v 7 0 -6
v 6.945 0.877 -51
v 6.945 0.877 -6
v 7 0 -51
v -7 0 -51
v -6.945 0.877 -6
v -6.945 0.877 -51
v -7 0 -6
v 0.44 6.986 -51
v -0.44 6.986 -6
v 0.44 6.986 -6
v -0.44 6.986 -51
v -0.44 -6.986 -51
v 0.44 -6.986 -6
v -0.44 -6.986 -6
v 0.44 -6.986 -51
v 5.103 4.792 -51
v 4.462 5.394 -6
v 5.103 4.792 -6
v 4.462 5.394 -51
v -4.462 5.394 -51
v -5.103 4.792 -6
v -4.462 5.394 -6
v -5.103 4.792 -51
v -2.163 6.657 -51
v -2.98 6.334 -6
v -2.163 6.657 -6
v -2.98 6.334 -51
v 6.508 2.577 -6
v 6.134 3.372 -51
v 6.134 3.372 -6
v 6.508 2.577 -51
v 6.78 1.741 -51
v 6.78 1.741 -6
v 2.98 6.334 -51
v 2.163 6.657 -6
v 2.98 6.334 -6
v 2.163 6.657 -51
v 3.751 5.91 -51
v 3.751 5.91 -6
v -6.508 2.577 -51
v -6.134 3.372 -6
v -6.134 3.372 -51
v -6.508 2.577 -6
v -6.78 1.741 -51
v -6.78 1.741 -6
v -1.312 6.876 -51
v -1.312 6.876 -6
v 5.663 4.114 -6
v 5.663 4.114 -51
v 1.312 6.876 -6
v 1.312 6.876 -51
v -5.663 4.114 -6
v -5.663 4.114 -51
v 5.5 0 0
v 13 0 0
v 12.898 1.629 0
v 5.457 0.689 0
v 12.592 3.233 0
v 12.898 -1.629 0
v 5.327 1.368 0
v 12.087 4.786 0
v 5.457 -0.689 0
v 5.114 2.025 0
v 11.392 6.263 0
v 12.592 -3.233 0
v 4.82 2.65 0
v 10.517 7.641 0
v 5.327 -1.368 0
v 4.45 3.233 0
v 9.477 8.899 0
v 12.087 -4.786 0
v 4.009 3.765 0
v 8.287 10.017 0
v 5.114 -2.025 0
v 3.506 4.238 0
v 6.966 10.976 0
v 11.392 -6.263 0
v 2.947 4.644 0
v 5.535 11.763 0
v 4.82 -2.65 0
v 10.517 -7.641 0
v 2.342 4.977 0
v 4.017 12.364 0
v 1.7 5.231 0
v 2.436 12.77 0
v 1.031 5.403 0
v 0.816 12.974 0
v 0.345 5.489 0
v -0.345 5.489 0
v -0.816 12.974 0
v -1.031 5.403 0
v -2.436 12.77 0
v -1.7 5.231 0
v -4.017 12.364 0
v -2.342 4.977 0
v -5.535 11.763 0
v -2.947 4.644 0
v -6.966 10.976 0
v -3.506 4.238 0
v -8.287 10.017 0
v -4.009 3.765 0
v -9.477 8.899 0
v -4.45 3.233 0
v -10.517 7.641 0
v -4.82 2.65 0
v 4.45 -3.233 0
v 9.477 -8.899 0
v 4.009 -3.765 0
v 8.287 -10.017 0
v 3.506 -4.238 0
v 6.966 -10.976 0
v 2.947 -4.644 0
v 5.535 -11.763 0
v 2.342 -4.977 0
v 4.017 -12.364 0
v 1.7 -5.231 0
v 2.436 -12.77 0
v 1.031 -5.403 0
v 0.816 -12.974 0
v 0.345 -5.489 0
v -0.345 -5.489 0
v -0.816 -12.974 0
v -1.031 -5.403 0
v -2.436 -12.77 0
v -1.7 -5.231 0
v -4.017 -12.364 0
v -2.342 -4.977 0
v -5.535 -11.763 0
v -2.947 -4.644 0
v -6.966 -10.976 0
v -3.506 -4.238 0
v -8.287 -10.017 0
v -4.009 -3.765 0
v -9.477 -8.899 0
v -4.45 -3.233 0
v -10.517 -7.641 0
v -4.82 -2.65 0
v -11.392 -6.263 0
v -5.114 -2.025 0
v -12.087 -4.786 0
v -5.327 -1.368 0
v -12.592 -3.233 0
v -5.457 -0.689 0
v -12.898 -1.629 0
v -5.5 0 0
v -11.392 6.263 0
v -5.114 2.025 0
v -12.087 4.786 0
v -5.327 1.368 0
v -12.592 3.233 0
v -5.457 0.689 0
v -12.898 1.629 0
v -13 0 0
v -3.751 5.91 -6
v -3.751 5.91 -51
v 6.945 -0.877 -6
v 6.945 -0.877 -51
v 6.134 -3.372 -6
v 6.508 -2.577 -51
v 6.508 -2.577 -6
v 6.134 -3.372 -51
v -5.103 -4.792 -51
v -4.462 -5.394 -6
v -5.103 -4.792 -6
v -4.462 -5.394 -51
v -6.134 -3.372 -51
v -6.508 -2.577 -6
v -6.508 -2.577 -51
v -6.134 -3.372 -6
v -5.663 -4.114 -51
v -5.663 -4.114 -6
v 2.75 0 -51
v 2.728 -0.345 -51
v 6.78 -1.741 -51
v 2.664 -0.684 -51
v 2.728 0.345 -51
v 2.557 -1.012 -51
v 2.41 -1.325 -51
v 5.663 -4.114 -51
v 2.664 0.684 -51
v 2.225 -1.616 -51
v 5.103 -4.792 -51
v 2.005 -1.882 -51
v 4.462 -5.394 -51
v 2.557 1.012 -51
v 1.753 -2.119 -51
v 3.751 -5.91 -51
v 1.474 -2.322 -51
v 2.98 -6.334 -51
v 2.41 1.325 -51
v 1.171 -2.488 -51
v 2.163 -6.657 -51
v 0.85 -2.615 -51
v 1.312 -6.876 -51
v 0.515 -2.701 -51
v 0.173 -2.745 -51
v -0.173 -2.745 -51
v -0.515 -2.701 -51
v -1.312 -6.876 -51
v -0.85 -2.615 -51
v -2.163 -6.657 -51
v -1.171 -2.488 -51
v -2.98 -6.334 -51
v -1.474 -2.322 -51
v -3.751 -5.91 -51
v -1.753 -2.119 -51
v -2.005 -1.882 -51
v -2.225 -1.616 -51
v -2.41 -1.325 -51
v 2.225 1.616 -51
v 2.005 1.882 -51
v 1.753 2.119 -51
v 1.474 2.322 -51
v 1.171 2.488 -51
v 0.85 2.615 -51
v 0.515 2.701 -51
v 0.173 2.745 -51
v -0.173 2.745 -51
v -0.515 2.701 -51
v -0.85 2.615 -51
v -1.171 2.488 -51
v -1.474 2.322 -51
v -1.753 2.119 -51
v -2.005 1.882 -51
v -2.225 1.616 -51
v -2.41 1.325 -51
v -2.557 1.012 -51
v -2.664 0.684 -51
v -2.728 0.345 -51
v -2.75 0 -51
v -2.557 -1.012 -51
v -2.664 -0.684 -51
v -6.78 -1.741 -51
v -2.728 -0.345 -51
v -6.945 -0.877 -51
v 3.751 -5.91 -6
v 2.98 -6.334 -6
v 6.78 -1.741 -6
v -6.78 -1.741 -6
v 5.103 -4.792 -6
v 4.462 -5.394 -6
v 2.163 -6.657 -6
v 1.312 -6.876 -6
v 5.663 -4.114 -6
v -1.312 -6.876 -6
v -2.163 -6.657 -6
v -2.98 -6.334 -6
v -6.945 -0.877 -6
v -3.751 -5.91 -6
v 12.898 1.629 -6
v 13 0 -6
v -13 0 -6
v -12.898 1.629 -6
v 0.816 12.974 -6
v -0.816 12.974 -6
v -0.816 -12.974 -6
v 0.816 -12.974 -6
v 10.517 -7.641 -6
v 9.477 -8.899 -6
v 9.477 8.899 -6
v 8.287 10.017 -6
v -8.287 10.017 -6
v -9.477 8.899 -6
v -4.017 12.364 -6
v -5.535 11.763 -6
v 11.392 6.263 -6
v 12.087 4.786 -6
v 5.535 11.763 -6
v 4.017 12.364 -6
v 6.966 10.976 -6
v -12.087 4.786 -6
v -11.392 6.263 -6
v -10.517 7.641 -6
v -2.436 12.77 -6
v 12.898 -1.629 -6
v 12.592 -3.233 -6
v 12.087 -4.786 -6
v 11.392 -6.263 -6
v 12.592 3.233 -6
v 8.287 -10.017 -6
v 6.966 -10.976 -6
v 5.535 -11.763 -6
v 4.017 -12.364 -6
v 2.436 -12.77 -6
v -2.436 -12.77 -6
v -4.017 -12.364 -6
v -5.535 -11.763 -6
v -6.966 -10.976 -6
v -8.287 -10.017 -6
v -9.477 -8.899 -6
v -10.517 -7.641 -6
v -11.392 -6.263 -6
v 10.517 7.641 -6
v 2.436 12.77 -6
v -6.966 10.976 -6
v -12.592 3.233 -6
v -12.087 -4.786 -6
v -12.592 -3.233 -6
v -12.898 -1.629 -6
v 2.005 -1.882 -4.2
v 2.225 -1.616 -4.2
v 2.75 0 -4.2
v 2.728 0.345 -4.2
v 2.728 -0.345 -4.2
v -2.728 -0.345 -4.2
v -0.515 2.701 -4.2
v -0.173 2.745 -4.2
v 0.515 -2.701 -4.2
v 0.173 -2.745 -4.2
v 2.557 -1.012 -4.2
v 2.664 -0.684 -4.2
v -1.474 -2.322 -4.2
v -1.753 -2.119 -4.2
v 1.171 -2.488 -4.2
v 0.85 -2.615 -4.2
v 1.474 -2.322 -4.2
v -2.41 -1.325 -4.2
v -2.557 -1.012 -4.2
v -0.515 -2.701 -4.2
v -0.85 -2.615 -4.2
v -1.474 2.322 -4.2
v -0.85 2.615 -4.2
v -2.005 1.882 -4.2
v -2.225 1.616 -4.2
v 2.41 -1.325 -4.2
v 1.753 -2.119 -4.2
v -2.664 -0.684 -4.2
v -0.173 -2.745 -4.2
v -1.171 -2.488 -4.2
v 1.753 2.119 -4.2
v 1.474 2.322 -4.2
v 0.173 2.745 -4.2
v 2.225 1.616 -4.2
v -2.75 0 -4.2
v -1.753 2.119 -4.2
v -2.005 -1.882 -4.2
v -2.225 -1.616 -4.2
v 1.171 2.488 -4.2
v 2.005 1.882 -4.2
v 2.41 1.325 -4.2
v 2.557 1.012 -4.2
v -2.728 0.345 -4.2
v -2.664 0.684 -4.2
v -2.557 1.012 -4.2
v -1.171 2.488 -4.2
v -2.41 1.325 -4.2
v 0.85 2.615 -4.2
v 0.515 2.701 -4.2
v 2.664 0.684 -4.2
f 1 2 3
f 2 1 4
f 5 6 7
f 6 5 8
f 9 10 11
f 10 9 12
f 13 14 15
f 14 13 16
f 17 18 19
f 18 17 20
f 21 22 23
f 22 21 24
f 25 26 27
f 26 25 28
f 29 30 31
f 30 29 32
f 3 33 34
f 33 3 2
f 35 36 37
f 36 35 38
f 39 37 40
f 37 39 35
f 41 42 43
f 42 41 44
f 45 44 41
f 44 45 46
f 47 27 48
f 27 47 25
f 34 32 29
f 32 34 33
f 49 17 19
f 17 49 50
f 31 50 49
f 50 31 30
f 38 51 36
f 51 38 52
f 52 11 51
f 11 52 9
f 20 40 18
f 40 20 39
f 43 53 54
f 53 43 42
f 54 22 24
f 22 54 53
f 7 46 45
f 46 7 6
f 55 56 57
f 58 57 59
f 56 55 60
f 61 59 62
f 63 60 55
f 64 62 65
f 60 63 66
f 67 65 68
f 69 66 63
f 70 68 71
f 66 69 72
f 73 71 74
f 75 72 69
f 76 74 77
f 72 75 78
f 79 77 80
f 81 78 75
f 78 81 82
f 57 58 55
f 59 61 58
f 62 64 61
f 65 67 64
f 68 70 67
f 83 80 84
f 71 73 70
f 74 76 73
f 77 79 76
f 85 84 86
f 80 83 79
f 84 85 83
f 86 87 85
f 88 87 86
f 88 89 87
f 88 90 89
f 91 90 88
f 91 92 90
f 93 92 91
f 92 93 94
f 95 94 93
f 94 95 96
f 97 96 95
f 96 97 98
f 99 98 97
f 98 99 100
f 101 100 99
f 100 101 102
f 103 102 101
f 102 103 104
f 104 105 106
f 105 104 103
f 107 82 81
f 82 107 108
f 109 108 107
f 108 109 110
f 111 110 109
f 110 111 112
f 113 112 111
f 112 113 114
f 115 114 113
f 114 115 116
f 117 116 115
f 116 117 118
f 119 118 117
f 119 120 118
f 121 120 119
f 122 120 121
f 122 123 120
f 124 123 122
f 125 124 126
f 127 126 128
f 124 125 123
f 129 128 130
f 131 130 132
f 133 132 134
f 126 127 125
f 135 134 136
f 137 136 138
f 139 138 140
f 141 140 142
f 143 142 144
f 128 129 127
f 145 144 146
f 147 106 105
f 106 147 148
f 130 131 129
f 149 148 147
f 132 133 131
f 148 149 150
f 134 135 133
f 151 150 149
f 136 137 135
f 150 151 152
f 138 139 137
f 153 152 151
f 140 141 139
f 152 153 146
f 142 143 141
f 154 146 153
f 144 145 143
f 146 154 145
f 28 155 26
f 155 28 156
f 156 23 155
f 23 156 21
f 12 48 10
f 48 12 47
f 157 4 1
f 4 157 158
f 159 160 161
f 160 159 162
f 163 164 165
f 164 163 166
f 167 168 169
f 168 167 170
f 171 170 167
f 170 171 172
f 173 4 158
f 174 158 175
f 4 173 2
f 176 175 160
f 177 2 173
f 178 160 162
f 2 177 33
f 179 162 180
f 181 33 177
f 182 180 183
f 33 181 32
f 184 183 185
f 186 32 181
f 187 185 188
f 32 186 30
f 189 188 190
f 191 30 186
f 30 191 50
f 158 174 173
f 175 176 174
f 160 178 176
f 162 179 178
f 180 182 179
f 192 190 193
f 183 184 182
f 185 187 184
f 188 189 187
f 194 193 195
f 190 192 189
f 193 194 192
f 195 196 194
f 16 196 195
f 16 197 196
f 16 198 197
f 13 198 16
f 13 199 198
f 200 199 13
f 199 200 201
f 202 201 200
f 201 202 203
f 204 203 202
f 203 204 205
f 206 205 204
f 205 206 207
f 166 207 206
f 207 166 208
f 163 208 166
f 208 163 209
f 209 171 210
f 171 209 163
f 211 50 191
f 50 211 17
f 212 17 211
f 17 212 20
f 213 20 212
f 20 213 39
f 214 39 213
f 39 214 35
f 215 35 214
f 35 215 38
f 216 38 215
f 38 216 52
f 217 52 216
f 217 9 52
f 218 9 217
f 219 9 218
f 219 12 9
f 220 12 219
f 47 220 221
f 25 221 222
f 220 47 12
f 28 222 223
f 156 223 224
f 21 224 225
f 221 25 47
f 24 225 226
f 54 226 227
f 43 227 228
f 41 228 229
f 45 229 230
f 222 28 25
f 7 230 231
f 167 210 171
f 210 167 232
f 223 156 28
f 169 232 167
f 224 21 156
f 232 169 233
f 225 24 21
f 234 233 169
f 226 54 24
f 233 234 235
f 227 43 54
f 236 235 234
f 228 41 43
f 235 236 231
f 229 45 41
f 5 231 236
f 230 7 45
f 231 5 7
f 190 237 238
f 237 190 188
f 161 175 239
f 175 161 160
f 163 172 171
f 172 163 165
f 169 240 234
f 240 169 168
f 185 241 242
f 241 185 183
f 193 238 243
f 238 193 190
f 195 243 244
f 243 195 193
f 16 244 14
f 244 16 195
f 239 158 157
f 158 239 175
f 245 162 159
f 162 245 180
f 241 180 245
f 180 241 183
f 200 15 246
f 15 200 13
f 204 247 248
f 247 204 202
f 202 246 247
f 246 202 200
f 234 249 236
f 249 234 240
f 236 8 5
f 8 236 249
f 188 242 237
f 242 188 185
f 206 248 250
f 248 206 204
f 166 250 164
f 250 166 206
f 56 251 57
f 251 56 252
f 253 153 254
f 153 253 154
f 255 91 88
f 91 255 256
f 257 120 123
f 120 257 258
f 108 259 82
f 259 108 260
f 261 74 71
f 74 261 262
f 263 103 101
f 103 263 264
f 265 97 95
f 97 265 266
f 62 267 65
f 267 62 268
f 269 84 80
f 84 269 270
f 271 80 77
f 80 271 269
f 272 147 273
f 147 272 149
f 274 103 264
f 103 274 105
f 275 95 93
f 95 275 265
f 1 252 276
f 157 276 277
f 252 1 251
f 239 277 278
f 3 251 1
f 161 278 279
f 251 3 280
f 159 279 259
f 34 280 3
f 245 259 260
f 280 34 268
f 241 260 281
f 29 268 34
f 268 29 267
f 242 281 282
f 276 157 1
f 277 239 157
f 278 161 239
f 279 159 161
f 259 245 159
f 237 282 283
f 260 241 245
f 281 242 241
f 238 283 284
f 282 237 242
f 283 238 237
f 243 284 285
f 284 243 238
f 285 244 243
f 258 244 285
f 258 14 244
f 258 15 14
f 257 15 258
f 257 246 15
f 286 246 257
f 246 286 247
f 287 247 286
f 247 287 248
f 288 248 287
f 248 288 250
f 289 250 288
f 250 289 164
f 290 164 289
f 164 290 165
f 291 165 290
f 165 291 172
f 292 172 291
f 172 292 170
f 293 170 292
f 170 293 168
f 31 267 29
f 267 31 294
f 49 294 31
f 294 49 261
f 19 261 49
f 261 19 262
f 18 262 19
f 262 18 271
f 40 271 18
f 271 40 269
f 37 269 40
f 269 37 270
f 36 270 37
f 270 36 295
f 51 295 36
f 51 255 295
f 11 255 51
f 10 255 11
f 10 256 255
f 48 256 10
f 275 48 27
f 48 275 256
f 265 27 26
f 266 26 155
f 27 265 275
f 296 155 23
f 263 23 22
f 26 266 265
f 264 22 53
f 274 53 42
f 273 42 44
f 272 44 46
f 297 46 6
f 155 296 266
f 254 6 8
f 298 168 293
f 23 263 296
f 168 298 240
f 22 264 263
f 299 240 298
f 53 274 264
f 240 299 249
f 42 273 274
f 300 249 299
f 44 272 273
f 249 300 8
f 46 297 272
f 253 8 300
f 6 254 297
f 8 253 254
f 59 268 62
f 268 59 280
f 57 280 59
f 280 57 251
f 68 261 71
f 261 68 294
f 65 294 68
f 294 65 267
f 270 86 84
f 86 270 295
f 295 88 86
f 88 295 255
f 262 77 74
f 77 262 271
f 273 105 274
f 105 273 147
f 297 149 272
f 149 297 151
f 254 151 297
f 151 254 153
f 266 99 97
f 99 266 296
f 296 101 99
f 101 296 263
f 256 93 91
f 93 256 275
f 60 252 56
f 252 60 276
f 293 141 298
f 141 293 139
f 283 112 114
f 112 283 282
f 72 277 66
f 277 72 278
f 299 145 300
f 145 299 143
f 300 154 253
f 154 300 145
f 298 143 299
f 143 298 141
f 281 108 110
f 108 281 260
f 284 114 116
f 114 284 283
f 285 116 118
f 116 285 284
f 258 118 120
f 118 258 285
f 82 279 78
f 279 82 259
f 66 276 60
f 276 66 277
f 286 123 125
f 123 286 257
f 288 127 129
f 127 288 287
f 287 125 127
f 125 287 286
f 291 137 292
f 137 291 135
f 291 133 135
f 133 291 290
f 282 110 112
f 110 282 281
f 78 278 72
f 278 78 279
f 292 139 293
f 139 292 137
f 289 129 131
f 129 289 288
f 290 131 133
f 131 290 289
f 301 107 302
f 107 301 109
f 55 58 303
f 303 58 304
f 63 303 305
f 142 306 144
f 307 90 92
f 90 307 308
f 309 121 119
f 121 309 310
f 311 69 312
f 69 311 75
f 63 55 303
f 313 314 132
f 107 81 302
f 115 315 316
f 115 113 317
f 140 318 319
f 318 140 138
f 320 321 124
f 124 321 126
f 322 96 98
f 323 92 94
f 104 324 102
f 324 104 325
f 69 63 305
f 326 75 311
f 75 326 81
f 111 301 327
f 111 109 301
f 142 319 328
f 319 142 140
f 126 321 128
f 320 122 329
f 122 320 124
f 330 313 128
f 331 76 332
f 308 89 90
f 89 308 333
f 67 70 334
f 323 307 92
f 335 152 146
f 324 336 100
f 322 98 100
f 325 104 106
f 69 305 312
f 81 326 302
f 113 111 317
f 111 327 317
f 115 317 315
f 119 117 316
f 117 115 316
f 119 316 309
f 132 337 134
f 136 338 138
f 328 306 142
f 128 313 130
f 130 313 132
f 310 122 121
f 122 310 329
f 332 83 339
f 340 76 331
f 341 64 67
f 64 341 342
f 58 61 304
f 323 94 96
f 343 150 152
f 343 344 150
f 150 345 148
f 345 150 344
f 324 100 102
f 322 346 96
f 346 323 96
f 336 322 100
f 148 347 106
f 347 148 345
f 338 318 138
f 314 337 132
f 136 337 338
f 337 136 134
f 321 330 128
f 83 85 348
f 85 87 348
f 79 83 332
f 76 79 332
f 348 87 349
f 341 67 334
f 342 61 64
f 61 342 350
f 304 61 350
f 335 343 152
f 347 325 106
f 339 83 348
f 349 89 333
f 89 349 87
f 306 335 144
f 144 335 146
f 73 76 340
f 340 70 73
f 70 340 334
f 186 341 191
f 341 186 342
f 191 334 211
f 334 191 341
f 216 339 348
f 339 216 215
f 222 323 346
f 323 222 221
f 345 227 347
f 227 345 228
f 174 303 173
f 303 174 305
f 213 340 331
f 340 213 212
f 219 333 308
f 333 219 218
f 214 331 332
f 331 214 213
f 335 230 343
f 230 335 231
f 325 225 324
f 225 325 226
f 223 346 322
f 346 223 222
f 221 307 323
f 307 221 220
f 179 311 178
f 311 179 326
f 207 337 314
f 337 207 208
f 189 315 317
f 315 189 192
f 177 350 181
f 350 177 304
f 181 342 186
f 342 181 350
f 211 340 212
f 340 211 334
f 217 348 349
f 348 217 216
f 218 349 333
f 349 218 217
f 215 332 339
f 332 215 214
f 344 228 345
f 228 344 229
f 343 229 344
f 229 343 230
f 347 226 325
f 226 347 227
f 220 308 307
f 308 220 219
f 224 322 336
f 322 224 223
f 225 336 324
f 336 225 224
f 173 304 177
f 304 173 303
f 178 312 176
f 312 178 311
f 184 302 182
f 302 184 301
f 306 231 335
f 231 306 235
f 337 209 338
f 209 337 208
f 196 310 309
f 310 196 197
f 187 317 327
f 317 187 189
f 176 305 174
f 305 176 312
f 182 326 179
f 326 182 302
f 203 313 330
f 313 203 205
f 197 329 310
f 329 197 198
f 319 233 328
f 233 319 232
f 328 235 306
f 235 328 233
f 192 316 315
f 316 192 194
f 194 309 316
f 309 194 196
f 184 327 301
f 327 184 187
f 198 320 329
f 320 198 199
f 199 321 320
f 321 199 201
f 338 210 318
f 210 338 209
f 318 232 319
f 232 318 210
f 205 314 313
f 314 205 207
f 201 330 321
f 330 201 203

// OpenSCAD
$fn = 50;


difference() {
	union() {
		translate(v = [0, 0, -51.0000000000]) {
			cylinder(h = 51, r = 7.0000000000);
		}
		translate(v = [0, 0, -6.0000000000]) {
			cylinder(h = 6, r = 13.0000000000);
		}
	}
	union() {
		translate(v = [0, 0, 0]) {
			rotate(a = [0, 0, 0]) {
				difference() {
					union() {
						#translate(v = [0, 0, -51.0000000000]) {
							cylinder(h = 51, r = 2.2500000000);
						}
						#translate(v = [0, 0, -4.2000000000]) {
							cylinder(h = 4.2000000000, r1 = 2.7500000000, r2 = 5.5000000000);
						}
						#translate(v = [0, 0, -51.0000000000]) {
							cylinder(h = 51, r = 2.7500000000);
						}
						#translate(v = [0, 0, -51.0000000000]) {
							cylinder(h = 51, r = 2.2500000000);
						}
					}
					union();
				}
			}
		}
	}
}
